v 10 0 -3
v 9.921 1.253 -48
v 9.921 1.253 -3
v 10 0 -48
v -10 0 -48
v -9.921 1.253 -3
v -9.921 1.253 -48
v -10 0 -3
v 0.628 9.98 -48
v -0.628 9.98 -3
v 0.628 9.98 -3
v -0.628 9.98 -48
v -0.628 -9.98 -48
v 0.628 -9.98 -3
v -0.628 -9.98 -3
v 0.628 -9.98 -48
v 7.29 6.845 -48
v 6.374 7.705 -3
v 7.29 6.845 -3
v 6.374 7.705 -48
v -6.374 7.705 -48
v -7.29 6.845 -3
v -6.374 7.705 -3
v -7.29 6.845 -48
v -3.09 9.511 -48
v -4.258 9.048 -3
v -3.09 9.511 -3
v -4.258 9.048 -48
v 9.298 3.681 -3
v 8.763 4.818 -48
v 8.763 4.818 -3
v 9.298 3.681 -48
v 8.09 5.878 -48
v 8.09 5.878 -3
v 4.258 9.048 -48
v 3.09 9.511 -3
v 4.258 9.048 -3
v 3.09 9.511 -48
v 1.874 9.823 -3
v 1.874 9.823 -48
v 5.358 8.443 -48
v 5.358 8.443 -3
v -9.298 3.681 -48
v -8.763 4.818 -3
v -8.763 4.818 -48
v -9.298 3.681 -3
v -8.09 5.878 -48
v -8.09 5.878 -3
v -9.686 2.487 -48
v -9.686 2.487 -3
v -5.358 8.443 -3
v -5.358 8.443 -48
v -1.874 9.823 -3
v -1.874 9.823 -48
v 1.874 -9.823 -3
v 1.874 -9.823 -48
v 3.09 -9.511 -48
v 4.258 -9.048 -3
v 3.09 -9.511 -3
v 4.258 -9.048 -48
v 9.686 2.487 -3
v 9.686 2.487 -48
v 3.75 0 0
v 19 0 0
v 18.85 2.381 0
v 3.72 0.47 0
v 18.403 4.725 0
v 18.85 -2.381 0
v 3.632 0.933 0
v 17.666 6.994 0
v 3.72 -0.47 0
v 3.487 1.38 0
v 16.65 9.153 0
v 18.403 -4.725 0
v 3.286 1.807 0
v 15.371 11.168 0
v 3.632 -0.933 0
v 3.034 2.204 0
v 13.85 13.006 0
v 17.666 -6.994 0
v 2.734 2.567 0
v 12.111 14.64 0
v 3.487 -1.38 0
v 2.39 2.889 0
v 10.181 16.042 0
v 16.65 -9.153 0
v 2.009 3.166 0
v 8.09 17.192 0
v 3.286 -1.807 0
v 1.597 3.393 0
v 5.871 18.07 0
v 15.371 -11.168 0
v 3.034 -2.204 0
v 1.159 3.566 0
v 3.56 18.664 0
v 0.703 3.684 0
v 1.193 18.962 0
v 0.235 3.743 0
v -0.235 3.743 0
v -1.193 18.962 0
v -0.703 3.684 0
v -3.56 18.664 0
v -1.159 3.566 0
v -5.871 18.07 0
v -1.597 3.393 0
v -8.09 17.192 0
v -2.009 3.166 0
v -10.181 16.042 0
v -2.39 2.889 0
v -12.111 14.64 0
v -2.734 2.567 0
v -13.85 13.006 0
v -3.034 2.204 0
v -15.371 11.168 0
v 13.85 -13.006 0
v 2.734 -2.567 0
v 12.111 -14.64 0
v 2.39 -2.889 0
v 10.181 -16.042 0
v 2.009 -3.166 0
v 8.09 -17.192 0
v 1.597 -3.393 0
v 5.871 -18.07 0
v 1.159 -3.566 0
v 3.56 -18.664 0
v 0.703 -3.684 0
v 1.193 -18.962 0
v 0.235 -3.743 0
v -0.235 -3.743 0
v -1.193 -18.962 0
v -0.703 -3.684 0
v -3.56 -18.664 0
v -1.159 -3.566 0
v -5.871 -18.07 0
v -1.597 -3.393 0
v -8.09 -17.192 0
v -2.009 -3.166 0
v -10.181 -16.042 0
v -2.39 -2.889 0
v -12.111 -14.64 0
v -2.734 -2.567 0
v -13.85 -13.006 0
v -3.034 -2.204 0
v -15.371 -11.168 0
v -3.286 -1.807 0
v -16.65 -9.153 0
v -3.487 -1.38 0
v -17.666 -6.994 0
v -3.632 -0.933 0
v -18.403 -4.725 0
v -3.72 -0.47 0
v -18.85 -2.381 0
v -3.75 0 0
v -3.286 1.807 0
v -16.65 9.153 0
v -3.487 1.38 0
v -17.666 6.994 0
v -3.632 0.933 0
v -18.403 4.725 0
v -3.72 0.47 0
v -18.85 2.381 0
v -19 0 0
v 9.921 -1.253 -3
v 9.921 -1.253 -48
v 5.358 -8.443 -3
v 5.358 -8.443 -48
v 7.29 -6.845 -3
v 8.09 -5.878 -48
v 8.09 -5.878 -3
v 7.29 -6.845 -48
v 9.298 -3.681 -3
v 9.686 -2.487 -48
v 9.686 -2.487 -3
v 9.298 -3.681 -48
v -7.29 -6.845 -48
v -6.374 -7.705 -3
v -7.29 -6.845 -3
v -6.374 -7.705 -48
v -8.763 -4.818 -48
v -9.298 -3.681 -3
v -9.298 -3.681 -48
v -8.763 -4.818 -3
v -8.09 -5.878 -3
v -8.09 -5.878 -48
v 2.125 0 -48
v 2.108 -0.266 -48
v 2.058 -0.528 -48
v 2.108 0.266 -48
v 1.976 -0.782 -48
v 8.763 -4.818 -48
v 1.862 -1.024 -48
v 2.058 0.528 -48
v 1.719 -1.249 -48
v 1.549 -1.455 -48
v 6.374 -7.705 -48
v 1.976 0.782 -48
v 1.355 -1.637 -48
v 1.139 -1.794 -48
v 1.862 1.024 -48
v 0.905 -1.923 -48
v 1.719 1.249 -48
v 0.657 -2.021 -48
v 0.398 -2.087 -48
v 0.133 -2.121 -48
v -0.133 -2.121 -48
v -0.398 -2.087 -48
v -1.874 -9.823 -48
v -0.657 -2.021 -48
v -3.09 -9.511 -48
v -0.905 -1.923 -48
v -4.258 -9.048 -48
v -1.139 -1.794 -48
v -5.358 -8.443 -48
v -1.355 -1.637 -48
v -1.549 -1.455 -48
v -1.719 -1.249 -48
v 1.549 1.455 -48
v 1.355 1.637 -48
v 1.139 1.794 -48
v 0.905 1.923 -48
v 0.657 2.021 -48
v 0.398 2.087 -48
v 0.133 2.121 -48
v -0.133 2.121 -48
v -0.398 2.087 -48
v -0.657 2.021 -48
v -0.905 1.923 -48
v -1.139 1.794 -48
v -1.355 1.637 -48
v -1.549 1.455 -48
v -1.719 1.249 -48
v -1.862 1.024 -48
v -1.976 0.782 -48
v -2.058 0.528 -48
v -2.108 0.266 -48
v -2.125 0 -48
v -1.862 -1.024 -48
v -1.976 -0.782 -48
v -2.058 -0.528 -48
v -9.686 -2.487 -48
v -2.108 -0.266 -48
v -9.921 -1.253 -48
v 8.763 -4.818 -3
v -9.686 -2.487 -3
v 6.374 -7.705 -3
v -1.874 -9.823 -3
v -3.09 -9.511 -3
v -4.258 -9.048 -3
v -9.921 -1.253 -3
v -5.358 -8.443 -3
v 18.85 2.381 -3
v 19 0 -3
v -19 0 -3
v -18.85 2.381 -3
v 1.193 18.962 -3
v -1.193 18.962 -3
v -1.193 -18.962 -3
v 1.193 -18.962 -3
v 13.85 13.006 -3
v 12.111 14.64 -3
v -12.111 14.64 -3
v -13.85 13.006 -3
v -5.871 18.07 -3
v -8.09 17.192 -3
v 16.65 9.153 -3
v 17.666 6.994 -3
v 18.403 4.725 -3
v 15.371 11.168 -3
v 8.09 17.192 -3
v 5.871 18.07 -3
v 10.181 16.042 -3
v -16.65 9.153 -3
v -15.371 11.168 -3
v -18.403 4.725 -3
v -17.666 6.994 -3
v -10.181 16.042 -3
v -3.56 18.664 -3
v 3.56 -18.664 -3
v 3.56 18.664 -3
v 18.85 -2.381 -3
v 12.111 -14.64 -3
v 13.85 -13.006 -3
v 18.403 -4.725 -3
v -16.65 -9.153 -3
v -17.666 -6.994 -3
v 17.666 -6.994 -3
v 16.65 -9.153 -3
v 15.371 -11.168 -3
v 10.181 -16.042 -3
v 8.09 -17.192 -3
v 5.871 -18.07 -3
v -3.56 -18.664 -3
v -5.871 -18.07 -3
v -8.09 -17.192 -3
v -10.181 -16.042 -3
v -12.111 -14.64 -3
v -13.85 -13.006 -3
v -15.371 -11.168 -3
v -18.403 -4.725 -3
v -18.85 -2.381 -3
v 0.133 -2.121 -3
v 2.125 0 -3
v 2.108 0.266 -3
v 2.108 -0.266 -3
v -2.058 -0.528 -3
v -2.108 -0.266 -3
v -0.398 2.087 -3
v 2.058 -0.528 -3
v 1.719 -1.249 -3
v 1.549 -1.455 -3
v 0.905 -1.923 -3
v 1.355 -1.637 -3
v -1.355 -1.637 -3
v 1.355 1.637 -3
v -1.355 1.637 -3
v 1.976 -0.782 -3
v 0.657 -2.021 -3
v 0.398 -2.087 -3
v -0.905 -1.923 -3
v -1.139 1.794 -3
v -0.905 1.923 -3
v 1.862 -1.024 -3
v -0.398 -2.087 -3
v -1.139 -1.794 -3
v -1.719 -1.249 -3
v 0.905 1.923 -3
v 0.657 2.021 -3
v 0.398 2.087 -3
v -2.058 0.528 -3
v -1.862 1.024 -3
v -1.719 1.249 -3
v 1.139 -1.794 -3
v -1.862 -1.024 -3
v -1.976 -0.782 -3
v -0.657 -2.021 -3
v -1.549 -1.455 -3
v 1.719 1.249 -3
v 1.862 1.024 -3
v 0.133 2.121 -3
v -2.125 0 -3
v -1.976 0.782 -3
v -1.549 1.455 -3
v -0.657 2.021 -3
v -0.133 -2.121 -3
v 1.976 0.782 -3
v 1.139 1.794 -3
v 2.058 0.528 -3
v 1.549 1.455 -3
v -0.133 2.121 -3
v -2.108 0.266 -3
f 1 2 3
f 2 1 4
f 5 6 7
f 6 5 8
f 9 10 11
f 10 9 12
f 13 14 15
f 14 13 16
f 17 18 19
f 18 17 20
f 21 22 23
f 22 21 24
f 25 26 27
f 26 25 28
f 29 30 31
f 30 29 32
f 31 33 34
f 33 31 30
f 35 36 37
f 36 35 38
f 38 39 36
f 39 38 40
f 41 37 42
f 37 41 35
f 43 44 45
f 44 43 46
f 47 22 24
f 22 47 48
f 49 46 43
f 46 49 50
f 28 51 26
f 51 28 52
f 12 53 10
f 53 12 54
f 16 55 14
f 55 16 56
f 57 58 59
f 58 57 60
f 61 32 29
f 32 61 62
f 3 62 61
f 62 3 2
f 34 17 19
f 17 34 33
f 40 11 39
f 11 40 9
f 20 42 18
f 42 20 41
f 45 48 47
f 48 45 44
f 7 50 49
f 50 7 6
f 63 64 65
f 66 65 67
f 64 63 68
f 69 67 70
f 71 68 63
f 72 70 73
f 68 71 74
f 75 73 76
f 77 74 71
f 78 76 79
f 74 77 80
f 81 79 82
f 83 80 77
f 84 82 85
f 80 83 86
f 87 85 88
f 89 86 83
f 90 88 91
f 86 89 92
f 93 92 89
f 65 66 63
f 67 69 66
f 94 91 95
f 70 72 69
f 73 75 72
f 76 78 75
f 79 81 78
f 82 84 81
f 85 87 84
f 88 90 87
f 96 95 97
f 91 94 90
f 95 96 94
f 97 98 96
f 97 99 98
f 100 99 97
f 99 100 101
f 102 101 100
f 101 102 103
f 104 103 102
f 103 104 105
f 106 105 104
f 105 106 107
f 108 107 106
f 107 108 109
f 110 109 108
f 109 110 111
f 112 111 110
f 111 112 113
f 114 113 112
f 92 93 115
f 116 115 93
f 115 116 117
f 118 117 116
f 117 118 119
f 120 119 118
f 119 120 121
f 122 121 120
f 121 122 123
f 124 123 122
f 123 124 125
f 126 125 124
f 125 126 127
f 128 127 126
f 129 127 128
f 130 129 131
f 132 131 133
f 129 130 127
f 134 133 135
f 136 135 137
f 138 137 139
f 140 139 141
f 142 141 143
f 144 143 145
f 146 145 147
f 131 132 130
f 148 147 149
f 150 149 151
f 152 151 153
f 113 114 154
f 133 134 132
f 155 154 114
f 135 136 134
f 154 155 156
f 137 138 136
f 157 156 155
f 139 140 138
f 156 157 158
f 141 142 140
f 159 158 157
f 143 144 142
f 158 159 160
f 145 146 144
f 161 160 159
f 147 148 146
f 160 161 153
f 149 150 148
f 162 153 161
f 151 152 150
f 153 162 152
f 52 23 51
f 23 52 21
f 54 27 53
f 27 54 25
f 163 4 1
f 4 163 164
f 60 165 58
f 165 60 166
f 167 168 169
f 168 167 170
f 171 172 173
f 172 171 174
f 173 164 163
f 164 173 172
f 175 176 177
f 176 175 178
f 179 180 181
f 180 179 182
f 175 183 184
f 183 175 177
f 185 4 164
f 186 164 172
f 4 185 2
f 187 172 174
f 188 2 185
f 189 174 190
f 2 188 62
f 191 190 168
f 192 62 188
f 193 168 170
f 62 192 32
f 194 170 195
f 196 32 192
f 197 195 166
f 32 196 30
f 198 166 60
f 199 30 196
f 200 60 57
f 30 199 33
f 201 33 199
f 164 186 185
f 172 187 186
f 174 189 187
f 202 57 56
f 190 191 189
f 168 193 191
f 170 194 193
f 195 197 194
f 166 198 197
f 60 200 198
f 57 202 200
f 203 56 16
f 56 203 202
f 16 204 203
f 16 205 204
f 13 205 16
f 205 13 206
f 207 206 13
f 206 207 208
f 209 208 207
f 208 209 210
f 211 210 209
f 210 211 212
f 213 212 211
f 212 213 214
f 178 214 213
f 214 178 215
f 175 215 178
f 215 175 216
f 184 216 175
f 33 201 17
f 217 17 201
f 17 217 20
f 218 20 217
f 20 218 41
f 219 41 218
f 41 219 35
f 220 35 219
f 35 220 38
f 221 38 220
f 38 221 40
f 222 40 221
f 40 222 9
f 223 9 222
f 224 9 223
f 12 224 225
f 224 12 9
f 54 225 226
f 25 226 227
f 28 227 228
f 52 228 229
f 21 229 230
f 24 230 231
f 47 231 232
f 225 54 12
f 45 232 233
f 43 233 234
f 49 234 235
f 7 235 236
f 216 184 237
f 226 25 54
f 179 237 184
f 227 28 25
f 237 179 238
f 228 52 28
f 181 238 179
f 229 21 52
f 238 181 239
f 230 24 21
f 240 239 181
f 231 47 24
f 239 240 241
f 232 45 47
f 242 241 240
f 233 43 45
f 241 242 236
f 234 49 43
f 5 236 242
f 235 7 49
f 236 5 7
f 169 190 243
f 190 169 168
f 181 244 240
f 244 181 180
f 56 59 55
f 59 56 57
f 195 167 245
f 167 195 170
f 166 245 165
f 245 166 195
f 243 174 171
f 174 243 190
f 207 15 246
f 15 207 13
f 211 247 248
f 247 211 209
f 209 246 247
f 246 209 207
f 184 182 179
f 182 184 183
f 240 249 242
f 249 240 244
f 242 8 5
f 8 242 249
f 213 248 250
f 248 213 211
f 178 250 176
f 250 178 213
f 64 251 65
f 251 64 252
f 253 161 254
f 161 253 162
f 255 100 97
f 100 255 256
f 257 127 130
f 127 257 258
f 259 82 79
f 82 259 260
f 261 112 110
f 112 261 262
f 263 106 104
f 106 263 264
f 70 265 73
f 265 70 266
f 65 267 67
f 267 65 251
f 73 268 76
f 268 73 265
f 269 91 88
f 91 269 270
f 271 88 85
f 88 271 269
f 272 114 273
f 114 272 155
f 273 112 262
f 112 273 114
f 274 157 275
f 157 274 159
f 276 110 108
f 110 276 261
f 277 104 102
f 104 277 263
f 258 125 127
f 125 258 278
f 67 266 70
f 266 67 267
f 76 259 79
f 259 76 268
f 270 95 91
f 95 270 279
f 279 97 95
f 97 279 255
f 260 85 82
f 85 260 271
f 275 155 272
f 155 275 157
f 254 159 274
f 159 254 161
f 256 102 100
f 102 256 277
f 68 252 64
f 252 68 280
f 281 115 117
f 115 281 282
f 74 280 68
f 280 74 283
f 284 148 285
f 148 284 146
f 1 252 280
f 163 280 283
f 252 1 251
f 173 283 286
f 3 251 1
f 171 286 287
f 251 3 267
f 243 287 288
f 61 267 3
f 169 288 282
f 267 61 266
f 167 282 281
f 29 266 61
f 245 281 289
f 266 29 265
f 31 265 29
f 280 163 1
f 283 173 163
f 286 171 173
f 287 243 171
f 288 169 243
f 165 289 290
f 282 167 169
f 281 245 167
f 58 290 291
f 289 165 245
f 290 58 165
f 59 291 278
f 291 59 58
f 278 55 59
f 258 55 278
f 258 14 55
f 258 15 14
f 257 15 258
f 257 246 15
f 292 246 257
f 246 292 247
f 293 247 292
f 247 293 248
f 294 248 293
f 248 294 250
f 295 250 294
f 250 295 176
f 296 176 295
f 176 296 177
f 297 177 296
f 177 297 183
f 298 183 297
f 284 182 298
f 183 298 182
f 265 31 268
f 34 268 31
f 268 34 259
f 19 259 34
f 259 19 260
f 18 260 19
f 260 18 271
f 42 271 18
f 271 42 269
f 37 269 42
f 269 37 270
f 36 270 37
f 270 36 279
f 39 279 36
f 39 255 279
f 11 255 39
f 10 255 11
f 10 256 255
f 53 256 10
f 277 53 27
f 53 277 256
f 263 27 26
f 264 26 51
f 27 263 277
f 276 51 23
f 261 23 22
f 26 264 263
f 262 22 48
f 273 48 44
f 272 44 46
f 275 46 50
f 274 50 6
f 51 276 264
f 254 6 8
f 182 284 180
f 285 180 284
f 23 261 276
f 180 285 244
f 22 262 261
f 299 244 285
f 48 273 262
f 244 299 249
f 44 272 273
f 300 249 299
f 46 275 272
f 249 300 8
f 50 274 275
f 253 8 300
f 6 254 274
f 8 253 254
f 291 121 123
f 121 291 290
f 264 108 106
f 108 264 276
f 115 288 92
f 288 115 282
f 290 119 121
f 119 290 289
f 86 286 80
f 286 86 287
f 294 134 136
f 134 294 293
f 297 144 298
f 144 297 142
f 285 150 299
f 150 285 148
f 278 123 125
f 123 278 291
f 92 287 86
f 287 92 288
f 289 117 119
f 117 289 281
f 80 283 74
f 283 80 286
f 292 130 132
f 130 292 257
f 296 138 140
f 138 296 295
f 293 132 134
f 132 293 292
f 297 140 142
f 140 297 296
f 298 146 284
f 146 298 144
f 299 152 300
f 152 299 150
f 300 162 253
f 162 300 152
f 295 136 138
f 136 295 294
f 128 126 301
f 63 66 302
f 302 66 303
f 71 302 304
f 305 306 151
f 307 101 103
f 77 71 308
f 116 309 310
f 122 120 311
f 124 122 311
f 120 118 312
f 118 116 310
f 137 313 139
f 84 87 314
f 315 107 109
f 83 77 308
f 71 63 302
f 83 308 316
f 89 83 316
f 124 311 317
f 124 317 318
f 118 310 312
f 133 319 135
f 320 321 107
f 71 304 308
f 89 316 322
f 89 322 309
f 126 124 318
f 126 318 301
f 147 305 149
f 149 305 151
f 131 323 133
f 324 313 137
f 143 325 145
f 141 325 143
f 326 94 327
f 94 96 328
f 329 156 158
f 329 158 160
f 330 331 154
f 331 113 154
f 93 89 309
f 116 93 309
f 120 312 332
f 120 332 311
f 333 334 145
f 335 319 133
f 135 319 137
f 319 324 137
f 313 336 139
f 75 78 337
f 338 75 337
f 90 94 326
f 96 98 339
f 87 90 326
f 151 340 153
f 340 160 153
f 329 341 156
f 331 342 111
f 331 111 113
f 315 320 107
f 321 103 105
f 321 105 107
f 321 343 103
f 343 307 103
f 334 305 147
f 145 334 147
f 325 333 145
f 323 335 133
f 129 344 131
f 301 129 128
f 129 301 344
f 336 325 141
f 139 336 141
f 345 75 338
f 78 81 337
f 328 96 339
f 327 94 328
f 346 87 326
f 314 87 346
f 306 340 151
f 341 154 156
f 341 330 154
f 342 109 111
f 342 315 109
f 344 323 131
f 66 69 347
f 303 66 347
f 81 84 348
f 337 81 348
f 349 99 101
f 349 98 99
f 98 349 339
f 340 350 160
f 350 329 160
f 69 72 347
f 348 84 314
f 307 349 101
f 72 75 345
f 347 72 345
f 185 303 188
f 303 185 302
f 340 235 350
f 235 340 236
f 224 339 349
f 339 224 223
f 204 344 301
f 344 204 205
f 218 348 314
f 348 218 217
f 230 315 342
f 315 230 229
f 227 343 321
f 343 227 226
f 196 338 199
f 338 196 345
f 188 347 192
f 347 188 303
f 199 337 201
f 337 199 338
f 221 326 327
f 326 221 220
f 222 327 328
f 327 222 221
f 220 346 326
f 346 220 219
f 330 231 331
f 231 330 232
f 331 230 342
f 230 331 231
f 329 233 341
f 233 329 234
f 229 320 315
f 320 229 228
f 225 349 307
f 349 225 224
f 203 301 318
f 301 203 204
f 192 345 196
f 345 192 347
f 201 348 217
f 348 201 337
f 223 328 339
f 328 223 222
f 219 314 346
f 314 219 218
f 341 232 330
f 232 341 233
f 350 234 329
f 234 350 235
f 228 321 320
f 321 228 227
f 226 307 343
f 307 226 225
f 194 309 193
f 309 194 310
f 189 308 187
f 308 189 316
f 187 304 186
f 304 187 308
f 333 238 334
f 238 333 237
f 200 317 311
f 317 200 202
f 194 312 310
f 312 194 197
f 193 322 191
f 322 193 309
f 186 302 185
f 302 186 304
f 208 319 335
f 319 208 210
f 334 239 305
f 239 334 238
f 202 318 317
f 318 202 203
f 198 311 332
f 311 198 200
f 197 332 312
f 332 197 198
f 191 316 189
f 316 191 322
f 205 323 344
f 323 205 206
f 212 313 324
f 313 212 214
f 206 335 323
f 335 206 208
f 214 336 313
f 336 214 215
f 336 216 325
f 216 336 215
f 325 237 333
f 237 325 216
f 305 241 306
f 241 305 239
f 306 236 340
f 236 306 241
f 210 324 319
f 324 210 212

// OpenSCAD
$fn = 50;


difference() {
	union() {
		translate(v = [0, 0, -48.0000000000]) {
			cylinder(h = 48, r = 10.0000000000);
		}
		translate(v = [0, 0, -3.0000000000]) {
			cylinder(h = 3, r = 19.0000000000);
		}
	}
	union() {
		translate(v = [0, 0, 0]) {
			rotate(a = [0, 0, 0]) {
				difference() {
					union() {
						#translate(v = [0, 0, -48.0000000000]) {
							cylinder(h = 48, r = 2.0000000000);
						}
						#translate(v = [0, 0, -3]) {
							cylinder(h = 3, r = 10.0000000000, r1 = 2.1250000000, r2 = 3.7500000000);
						}
						#translate(v = [0, 0, -48.0000000000]) {
							cylinder(h = 48, r = 2.1250000000);
						}
						#translate(v = [0, 0, -48.0000000000]) {
							cylinder(h = 48, r = 2.0000000000);
						}
					}
					union();
				}
			}
		}
	}
}
